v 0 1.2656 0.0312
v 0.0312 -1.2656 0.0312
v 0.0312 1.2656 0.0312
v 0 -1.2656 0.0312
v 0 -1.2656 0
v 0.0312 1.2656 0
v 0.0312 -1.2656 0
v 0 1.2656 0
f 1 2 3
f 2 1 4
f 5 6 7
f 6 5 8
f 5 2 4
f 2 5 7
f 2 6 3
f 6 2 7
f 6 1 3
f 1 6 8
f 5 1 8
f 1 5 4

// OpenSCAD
// file: ../colors.scad
// colors.scad
// Credit: David Powell, OpenSCAN Forum



//group ABS_<colorname>
//	discription  common 3d printer ABS filament colors
// actual colours may need some tweaking

ABS_Nature =[0.8,0.8,0.8,0.8];
ABS_White =[0.9,0.9,0.9,1];
ABS_Black =[0.1,0.1,0.1,1];
ABS_Red = [0.7,0,0,1];
ABS_Green = [0,0.7,0,1];
ABS_Blue = [0,0,0.7,1];
ABS_Orange =[0.8,0.4,0,1];
ABS_Purple =[0.7,0,0.7,1];
ABS_Brown =[0.6,0.2,0.2,1];
ABS_Glow_Blue =[0,0,.99,1];
ABS_Flurescence_Green =[0,1,0,1];
ABS_Flurescence_Yellow = [0.9,0.9,0,1];

//group PLA_<colorname>
//	discription  common 3d printer PLA filament colors
// actual colours may need some tweaking

PLA_Nature =[0.8,0.8,0.8,0.8];
PLA_White =[0.9,0.9,0.9,1];
PLA_Black =[0.1,0.1,0.1,1];
PLA_Red = [0.7,0,0,1];
PLA_Green = [0,0.7,0,1];
PLA_Blue = [0,0,0.7,1];
PLA_Orange =[0.8,0.4,0,1];
PLA_Purple =[0.7,0,0.7,1];
PLA_Brown =[0.6,0.2,0.2,1];
PLA_Glow_Blue =[0,0,.99,1];
PLA_Flurescence_Green =[0,1,0,1];
PLA_Flurescence_Yellow = [0.9,0.9,0,1];

//group ANODIZED_<colorname>
//	discription  common aluminium anodized colors
// these don't seem to follow normal color tables as the process
// produces a color change difference to the named color
// dew to base metal
// actual colours may need some tweaking

ANODIZED_Red =[0.7,0,0,1];
ANODIZED_Gold =[0.8,0.8,0.0,1];
ANODIZED_Black =[0.1,0.1,0.1,1];
ANODIZED_Blue =[0,0,0.7,1];
ANODIZED_Green =[0,0.5,0,1];
ANODIZED_Gray =[0.4,0.4,0.4,1];
ANODIZED_Dark_Blue =[0,0.2,0.6,1];
ANODIZED_Lime_Green =[0,0.8,0,1];
ANODIZED_Purple =[0.5,0,0.7,1];		//more blue than purple
ANODIZED_Light_Blue =[0.4,0.4,1,1];
ANODIZED_Pink =[0.7,0,0.7,1];		//more purlpe than pink
ANODIZED_Orange =[0.9,0.5,0,1];
ANODIZED_Scandia_Gold =[0.9,0.6,0.3,1];
ANODIZED_Copper =[0.7,0.5,0,1];		//more brown than copper
ANODIZED_Clear =[0.7,0.7,0.9,1];	//natural aluminium color
ANODIZED_Light_Bronze =[0.4,0.4,0.3,1]; //more silver than bronze
ANODIZED_Gold_Nickel =[0.8,0.8,0.6,1];
ANODIZED_Brush_Nickel =[0.8,0.8,0.7,1];

//group METAL_<typename>
//	discription common metal colors
// colors need tweaking

METAL_Aluminium = [0.7,0.7,0.8,1];
METAL_Brass = [0.88,0.78,0.5,1];
METAL_Copper = [0.9,0.6,0.5,1];
METAL_Steel = [0.9,0.9,0.8,1];
METAL_Stainless = [0.8,0.8,0.7,1];
METAL_Titanium = [0.7,0.7,0.6,1];
METAL_Bronze = [0.9,0.4,0.4,1];
METAL_Gold = [0.9,0.9,0.0,1];
METAL_Silver = [0.8,0.8,0.8,1];
METAL_Iron = [0.6,0.6,0.6,1];

// group WOOD_<typename>
//	discription common wood colors
// probabaly wrong

WOOD_Oak = [0.4,0.2,0.2,1];
WOOD_Birch = [0.8,0.8,0.4,1];
WOOD_Red = [0.7,0.3,0.3,1];
WOOD_pine = [0.8,0.8,0.4,1];
WOOD_Beach = [0.8,0.6,0.3,1];
WOOD_Spruce = [0.8,0.8,0.7,1];
WOOD_Balsa = [0.95,0.86,0.73];

// group GLASS_<color>
//	discription common glass colors
// needs tweaking

GLASS_Clear = [0.8,0.8,0.8,0.2];
GLASS_Red = [0.8,0,0,0.4];
GLASS_Green = [0,0.8,0,.4];
GLASS_Blue = [0,0,0.8,.4];
GLASS_Brown = [0.5,0.3,0.1,.4];

CONCRETE = [210/255, 209/255, 205/255];
// file: MMlib/square_spar.scad
//####################################
// square_spar.scad
// (c) 2021 by Roie R. Black
//====================================


module square_spar(length=6,size=1/16) {
  translate([size/2, 0, size/2])
    cube([size,length,size], center=true);
}

square_spar(6,1/16);
// file: ../fin_data.scad
//#####################################
// fin-data.scad
// (c) 2021 by Roie R. Black
//=====================================
include <colors.scad>

fin_span = 2;
fin_chord = 4;
fin_radius = 1.5;
spar_size = 1/32;
fin_color = WOOD_Balsa;

//-------------------------------------
// calculated values

fin_le_length = fin_span - fin_radius - spar_size;
fin_te_length = fin_span -2*spar_size;
// main file
//########################################
// fin_rib2.scad
// (c) 2021 - Roie R. Black
//****************************************
include <../fin_data.scad>

use <MMlib/square_spar.scad>

module rib2() {
  square_spar(fin_chord-fin_radius+spar_size, spar_size);
}

rib2();
